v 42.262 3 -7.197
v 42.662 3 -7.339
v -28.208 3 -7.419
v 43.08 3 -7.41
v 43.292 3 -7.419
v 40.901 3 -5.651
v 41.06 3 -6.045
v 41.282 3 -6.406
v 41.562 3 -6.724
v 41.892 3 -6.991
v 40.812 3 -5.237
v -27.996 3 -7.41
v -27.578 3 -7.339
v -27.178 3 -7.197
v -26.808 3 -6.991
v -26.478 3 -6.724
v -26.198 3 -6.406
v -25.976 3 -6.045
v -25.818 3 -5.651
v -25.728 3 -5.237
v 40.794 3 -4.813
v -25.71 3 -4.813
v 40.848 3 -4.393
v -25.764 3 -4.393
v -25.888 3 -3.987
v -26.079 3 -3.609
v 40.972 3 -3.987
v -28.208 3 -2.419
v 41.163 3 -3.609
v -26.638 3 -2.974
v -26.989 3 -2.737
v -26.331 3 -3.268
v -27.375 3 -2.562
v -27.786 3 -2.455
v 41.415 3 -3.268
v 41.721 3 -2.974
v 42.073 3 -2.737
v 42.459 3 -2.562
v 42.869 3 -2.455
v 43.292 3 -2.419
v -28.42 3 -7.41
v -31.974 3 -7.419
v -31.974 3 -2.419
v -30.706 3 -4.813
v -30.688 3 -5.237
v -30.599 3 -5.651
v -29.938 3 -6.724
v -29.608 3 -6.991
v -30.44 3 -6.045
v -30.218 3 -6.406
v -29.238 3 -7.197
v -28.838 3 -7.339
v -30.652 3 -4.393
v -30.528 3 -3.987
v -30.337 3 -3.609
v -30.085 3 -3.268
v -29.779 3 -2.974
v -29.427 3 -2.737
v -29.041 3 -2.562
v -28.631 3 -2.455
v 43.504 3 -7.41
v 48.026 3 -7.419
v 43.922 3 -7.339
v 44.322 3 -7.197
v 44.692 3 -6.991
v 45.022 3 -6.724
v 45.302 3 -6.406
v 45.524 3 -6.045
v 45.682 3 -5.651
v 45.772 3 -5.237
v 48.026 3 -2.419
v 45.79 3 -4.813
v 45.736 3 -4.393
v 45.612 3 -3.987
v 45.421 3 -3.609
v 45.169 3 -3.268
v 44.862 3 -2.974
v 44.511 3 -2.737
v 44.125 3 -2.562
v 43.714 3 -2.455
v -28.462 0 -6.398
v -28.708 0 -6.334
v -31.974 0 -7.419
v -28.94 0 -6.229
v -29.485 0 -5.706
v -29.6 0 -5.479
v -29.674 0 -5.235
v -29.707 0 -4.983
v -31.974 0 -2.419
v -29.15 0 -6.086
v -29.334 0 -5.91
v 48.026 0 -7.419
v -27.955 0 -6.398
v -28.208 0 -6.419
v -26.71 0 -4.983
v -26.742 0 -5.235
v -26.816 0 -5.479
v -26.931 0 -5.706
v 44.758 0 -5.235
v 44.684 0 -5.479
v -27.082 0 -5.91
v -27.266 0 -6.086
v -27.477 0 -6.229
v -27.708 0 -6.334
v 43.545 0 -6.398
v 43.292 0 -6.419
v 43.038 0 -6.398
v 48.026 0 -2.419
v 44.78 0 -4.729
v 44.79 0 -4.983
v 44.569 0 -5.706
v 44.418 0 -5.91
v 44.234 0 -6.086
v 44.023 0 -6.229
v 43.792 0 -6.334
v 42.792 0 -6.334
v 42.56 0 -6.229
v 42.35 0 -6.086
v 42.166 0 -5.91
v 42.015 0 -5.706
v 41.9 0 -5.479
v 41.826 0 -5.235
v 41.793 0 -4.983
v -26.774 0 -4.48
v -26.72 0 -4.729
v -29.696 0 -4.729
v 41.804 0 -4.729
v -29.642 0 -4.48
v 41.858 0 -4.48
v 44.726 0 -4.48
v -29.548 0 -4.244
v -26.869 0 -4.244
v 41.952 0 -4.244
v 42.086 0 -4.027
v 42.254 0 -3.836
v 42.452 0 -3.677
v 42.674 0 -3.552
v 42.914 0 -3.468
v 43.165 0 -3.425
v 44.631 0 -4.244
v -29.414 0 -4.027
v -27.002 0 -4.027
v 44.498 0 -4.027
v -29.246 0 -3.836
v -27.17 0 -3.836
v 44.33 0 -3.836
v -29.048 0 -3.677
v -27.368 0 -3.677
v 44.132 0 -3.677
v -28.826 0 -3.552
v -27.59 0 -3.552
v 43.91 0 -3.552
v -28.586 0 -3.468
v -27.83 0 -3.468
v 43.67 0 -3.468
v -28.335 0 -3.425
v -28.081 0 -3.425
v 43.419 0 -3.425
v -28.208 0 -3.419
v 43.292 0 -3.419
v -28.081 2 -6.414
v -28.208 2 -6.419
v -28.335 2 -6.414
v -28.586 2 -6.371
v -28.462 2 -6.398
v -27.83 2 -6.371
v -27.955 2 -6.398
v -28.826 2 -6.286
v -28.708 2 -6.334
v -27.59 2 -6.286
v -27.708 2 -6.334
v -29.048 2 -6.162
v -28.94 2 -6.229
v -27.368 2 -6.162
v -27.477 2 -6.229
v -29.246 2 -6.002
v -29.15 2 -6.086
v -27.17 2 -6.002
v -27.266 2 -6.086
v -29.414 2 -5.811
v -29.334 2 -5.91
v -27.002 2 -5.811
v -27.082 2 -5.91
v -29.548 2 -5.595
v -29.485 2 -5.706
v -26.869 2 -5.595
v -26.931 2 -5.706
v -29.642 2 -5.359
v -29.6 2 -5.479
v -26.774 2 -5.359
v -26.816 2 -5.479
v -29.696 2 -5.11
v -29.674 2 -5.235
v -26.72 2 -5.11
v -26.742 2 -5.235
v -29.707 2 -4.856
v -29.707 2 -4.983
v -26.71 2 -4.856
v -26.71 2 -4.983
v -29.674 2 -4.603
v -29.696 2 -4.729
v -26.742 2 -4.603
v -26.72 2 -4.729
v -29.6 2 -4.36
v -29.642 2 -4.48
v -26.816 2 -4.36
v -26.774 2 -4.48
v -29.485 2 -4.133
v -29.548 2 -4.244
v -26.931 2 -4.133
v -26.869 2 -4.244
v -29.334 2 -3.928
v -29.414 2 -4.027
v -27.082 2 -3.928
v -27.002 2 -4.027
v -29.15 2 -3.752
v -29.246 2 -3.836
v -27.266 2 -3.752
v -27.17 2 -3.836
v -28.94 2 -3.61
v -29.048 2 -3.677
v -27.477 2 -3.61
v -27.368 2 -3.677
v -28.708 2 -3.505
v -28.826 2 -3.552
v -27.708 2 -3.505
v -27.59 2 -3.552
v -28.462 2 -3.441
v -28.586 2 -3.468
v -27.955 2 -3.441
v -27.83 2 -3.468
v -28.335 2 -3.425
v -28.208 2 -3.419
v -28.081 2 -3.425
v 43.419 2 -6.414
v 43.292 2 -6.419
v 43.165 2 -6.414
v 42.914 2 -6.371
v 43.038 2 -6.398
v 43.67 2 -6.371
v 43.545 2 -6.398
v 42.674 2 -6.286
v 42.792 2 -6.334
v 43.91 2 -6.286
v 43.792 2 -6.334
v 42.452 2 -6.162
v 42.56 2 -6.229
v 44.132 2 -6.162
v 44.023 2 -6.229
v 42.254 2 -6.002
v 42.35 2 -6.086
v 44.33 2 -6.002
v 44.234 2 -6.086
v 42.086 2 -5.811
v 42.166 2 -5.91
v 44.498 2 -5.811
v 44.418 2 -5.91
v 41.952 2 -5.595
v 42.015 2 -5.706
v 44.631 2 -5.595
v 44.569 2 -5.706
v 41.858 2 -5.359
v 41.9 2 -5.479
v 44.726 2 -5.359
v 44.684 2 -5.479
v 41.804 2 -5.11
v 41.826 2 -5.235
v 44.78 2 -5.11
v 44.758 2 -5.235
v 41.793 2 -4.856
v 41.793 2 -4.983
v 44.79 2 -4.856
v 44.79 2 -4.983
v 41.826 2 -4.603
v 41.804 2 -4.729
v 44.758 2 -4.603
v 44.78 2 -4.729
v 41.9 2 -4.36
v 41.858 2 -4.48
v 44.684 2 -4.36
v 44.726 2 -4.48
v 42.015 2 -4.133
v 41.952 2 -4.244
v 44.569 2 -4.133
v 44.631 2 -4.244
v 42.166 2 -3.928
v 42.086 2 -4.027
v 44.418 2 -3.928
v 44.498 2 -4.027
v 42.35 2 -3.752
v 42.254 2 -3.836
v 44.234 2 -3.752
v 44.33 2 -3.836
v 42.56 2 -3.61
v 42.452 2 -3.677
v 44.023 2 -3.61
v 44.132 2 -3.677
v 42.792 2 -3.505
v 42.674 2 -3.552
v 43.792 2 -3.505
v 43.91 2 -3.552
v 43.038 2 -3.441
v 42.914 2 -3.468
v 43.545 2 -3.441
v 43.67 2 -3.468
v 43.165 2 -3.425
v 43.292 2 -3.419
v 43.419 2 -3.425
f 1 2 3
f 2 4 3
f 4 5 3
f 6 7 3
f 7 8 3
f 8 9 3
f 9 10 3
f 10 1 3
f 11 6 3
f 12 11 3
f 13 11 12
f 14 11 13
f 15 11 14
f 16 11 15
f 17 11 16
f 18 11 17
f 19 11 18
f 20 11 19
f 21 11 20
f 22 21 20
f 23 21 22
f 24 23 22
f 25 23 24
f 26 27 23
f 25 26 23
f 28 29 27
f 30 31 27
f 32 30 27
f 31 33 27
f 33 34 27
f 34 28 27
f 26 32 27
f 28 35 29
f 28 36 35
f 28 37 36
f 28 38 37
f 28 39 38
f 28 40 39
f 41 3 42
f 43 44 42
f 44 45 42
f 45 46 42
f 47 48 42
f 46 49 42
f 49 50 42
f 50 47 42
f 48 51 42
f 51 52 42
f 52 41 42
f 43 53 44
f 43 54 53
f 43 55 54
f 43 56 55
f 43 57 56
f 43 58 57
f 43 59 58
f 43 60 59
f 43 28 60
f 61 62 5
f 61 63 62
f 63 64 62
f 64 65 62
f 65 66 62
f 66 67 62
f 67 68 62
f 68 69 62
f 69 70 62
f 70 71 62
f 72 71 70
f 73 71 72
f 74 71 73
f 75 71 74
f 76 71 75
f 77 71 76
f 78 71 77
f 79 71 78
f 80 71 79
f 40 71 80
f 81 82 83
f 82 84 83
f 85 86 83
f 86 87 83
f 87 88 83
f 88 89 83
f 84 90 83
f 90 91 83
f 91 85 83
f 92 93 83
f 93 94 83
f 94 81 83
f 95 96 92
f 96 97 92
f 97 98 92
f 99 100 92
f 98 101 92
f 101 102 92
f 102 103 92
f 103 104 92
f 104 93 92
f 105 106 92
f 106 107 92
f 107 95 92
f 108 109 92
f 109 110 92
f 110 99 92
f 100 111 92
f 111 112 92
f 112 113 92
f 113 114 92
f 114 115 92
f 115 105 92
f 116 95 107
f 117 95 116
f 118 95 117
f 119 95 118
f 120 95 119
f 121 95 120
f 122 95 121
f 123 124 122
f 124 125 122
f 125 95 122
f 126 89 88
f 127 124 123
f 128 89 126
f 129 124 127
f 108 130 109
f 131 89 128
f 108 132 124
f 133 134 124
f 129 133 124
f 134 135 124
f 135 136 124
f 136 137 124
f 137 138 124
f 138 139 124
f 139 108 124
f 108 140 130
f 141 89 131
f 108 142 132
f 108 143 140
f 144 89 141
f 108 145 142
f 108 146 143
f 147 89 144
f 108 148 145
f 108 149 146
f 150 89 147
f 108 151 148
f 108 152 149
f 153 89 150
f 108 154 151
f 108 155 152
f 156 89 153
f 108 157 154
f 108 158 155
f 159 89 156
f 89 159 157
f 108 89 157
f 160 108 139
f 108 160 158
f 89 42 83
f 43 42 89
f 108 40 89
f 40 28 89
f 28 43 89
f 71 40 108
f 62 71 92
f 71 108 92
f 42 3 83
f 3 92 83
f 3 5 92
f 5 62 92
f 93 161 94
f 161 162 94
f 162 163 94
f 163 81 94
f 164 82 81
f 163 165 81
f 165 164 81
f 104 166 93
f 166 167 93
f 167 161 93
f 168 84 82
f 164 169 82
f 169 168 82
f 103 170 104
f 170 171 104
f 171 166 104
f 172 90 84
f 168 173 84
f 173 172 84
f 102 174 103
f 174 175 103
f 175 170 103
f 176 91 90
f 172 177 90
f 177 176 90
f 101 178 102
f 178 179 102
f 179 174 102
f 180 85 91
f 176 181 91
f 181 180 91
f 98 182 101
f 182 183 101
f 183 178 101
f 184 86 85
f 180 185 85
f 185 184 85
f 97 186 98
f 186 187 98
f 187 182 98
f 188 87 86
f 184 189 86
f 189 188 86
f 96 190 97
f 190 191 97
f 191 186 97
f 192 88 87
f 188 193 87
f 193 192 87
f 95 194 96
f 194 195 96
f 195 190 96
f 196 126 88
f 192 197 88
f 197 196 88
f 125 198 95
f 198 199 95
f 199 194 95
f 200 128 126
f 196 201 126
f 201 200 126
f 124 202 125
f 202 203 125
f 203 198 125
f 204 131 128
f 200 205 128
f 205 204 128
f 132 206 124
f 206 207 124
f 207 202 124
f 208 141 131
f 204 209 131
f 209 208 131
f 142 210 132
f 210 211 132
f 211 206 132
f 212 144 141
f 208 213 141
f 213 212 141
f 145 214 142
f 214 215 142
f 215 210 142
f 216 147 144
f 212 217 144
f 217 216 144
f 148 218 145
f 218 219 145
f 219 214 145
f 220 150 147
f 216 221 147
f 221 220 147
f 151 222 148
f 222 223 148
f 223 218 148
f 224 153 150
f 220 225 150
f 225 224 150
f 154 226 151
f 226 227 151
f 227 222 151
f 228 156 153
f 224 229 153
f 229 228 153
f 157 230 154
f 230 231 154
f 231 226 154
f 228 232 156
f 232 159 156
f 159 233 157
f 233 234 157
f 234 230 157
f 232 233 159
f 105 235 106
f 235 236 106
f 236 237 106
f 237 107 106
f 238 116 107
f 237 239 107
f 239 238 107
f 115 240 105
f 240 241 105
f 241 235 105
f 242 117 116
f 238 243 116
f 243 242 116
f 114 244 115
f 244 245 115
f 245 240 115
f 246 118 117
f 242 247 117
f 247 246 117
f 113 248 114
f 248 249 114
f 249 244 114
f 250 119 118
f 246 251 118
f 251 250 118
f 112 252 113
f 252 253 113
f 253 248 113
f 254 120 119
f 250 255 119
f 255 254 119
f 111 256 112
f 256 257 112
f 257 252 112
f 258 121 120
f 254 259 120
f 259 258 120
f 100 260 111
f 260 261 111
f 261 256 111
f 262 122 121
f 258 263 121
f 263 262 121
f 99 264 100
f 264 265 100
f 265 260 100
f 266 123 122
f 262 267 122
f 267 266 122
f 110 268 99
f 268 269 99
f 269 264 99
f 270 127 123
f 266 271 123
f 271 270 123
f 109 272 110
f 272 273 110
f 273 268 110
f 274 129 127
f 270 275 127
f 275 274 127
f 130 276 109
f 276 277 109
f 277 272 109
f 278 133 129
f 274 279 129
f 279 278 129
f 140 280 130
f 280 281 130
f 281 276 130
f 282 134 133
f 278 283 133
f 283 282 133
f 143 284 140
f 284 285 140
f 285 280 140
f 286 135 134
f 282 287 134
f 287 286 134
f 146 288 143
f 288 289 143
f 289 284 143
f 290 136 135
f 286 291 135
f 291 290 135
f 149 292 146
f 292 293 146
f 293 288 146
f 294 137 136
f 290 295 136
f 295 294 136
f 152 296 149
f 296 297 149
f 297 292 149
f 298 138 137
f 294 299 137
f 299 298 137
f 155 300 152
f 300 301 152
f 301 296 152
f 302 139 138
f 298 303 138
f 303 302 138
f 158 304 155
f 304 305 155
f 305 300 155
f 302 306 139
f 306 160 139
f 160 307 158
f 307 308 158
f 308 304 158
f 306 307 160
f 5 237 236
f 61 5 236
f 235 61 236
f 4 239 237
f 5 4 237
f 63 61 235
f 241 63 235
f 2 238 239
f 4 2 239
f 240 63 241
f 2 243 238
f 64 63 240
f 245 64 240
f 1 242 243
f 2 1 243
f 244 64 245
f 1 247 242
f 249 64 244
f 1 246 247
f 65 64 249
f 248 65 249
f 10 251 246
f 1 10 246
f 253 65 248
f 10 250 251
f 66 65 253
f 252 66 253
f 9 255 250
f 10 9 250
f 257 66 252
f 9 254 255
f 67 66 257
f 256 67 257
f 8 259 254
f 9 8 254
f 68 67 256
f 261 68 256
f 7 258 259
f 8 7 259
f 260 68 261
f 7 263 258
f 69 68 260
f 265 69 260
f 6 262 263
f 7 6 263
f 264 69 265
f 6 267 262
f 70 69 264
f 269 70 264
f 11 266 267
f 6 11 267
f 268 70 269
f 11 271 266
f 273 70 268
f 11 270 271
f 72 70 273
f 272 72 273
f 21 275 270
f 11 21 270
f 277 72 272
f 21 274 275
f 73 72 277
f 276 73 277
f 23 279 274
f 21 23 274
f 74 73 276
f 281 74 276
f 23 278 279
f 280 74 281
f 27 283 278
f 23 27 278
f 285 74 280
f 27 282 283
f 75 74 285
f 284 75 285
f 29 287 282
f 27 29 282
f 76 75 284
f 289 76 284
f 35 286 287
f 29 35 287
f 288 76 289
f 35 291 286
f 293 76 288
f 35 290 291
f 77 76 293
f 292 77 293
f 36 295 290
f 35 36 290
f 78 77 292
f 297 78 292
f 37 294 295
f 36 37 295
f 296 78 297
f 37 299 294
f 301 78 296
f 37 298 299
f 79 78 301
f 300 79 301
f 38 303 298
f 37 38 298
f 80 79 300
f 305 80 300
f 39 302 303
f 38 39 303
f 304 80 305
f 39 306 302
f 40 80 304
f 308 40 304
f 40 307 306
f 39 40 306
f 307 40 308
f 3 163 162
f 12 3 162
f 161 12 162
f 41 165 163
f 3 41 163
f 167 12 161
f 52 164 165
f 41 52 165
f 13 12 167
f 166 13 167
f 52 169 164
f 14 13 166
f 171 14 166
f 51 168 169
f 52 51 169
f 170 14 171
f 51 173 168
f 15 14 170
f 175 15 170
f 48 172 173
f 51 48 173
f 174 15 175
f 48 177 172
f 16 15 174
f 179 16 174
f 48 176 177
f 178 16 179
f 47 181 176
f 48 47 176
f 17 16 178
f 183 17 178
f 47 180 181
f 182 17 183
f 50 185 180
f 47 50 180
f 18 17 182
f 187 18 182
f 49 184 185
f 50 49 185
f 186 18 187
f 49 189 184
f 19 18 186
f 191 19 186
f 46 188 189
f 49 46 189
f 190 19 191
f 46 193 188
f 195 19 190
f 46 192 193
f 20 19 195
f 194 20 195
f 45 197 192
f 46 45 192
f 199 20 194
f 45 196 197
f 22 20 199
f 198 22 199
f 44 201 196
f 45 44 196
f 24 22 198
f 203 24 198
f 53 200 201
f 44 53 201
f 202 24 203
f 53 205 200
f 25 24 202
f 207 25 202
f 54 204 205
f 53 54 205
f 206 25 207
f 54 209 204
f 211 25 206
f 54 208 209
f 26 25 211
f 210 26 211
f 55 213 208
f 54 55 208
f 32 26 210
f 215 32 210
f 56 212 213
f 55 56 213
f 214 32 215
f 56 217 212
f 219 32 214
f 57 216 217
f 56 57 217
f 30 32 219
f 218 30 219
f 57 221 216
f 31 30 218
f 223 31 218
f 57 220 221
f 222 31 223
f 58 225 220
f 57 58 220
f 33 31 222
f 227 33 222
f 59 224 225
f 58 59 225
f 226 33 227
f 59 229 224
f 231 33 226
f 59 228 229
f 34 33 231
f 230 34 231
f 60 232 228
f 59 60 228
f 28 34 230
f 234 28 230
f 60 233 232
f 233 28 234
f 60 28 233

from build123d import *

# Parameters (mm, degrees)
SKETCH1_W           = 80
SKETCH1_H           = 5
SKETCH1_R           = 1.5
BOSS_EXTRUDE1_DEPTH = 3
CHAMFER1_SIZE       = 1


with BuildPart() as part:
    # Sketch1 → Boss-Extrude1 (new body)
    with BuildSketch(Plane(origin=(0, 0, 0), x_dir=(1, 0, 0), z_dir=(0, 1, 0))):
        with Locations((8.025662252, 4.919288079)):
            Rectangle(SKETCH1_W, SKETCH1_H)
        with Locations(Location((-28.208163206, 4.919288079, 0), (0, 0, 270))):
            Circle(SKETCH1_R, mode=Mode.SUBTRACT)
        with Locations(Location((43.291836794, 4.919288079, 0), (0, 0, 270))):
            Circle(SKETCH1_R, mode=Mode.SUBTRACT)
    extrude(amount=BOSS_EXTRUDE1_DEPTH)

    # Chamfer1
    chamfer1_edges = [part.edges().sort_by_distance(p)[0] for p in [
        (-28.208163206, 3, -6.419288079),
        (43.291836794, 3, -6.419288079),
    ]]
    chamfer(chamfer1_edges, length=CHAMFER1_SIZE - 0.0001)  # a hair under: the kernel refuses the full size


solid = part.part
